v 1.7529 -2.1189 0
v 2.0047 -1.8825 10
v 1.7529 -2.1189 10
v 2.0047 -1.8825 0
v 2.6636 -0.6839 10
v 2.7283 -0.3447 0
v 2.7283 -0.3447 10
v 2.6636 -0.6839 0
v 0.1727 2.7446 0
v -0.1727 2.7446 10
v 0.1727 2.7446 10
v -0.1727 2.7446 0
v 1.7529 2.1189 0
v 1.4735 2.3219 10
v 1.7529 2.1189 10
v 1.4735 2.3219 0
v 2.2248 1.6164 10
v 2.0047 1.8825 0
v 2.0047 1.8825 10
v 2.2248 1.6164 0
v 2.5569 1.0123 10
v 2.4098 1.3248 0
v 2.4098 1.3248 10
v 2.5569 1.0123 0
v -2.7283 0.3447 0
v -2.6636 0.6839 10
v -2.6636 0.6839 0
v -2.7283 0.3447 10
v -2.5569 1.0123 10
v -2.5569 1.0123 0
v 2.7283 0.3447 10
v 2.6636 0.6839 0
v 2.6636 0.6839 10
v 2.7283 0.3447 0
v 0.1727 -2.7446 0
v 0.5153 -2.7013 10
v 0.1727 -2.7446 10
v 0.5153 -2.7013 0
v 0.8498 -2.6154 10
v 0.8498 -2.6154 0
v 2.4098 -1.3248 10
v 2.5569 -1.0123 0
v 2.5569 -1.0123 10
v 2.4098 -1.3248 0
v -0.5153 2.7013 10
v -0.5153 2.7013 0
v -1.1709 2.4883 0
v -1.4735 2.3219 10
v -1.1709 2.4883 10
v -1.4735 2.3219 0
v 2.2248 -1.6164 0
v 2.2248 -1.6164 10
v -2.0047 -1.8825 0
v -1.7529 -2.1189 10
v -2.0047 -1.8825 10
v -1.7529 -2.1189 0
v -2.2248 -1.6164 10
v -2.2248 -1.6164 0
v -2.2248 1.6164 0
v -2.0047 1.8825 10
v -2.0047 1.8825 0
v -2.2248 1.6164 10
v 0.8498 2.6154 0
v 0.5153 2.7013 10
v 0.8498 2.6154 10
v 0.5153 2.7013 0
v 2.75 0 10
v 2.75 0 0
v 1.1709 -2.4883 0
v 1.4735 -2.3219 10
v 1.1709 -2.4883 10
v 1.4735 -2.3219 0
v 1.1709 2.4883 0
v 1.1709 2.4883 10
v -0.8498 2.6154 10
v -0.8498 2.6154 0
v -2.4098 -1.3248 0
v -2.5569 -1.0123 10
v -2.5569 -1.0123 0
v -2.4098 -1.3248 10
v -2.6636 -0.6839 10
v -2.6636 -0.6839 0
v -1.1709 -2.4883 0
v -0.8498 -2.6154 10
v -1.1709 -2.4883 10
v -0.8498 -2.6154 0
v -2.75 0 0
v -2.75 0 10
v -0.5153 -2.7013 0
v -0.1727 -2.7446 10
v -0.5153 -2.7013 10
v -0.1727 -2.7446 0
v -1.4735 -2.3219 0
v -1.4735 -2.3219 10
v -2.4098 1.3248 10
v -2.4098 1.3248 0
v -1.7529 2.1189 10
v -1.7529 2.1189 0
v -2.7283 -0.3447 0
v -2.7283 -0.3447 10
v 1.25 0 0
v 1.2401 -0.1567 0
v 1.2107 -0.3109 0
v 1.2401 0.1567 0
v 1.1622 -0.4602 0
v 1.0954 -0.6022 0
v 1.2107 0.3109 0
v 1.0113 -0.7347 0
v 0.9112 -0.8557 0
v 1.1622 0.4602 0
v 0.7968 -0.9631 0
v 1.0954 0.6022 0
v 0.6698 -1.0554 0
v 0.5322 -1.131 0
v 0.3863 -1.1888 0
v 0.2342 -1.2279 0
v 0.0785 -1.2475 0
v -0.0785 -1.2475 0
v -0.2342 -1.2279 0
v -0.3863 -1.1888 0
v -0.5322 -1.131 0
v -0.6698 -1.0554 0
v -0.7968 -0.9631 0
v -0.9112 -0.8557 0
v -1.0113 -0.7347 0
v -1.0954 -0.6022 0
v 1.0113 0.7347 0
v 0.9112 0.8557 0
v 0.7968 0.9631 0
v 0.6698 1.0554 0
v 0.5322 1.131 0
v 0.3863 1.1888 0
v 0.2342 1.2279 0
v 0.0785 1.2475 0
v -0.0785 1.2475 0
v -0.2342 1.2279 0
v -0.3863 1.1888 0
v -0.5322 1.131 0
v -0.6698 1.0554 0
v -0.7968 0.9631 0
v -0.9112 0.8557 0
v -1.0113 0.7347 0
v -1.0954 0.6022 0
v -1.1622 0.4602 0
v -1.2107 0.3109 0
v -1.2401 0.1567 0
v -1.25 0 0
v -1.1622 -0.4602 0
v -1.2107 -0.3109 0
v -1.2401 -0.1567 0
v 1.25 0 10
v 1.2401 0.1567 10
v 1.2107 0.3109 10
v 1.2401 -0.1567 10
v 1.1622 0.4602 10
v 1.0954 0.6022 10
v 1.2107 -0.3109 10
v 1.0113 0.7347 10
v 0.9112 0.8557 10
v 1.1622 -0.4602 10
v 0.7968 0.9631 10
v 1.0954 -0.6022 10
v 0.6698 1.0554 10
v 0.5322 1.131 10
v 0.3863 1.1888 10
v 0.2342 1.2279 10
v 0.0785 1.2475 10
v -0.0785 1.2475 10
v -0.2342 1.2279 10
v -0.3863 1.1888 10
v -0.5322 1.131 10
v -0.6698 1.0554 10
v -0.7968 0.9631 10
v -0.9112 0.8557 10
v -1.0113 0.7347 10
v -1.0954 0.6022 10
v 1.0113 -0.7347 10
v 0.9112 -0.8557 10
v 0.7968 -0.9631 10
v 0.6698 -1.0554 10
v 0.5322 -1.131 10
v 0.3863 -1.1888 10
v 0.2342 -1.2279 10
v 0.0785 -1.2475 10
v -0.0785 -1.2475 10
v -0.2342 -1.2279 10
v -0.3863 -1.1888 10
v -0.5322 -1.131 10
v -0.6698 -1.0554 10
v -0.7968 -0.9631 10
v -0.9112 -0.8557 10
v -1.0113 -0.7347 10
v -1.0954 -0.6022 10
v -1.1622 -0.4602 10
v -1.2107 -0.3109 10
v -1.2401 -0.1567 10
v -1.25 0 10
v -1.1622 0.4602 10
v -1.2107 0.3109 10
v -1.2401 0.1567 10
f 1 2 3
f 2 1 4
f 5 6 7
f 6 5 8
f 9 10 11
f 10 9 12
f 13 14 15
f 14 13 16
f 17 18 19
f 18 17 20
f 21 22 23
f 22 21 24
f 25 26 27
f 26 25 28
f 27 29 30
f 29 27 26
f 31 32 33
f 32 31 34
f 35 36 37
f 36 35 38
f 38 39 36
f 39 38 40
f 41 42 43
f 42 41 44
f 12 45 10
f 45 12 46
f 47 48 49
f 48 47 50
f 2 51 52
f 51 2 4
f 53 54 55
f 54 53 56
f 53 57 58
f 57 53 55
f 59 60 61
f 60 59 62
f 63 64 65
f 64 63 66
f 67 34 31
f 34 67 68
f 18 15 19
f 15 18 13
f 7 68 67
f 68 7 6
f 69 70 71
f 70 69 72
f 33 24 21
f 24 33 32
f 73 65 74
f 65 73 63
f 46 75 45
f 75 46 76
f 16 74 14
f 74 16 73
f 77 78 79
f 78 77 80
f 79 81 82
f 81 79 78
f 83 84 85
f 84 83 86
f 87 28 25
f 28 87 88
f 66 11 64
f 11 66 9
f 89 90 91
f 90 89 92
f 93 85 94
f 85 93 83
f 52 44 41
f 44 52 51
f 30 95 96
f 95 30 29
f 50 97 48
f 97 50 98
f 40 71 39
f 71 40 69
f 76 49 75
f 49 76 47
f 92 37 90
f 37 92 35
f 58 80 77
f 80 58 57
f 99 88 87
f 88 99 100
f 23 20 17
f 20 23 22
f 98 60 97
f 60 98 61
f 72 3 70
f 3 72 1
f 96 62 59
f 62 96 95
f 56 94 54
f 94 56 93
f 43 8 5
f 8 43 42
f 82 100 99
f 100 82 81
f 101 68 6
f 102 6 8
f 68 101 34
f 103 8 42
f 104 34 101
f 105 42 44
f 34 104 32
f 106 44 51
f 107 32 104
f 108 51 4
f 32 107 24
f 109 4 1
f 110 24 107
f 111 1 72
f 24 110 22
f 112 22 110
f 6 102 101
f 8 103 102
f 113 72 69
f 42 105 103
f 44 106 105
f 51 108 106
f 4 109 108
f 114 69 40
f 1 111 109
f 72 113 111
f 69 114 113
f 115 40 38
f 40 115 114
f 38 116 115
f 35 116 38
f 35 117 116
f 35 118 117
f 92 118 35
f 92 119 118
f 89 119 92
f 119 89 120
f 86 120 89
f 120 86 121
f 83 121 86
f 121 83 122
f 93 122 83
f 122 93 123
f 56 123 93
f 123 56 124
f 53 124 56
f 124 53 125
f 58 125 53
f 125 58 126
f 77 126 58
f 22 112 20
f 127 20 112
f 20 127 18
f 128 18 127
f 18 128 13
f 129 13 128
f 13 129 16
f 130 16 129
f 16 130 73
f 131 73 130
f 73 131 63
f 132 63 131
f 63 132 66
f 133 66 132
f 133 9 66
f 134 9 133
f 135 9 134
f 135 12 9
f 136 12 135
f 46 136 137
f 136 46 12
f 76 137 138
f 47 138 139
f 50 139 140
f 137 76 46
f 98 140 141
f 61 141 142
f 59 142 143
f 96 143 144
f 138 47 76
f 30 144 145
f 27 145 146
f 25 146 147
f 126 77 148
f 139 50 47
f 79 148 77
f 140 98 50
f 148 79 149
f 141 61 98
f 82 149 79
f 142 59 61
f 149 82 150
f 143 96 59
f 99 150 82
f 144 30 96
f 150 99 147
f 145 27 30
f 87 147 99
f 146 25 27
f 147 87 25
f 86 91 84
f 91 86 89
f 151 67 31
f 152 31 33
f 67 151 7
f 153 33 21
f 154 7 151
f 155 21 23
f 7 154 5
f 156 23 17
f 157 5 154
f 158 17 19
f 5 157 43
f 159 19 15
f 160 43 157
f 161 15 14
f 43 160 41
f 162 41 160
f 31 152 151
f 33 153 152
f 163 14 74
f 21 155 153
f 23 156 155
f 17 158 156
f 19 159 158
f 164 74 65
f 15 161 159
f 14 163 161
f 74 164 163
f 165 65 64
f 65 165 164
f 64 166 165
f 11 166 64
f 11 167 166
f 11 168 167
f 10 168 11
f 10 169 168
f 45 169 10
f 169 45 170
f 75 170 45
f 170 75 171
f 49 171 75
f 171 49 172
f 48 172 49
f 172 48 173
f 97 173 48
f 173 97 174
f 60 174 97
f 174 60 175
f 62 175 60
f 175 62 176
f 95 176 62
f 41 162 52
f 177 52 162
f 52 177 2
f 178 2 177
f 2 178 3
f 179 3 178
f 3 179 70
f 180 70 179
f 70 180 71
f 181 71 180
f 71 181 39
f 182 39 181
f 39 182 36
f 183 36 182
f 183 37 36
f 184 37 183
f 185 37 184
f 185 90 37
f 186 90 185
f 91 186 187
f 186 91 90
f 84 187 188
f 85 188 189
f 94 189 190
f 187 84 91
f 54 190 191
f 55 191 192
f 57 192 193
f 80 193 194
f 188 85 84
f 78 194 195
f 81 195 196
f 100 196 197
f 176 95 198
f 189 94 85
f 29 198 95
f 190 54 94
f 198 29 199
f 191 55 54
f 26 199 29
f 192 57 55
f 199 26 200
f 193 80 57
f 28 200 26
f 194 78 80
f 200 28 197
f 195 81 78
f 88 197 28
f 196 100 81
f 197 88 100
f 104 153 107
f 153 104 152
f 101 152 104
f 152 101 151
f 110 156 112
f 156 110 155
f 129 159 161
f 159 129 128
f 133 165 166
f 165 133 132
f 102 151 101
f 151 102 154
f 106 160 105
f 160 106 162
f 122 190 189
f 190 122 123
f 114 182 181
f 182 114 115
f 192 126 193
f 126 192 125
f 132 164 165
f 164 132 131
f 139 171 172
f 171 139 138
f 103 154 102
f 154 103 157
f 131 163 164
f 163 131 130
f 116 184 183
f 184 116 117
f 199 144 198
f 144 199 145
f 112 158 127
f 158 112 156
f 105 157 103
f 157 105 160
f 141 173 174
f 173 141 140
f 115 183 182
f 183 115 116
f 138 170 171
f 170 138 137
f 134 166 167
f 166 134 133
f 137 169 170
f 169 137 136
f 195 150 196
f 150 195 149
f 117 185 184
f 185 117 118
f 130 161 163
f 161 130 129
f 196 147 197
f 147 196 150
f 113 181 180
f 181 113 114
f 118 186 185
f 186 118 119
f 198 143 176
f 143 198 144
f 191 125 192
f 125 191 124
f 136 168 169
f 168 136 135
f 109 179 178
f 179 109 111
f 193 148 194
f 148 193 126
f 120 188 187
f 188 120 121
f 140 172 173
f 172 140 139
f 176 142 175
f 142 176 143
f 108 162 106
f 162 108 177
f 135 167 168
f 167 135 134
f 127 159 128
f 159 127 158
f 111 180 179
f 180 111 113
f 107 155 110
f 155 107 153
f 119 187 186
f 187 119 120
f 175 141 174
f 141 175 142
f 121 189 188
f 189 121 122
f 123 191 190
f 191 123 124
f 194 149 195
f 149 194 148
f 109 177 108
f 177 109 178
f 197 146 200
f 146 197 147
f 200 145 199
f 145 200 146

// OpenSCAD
$fn = 50;

height=10.0;
width=2.5;
wall=1.5;

difference(){
     cylinder(height, d=width+(2*wall), true);
     translate([0,0,-1]){
          cylinder(height+2, d=width, true);
     }
}
